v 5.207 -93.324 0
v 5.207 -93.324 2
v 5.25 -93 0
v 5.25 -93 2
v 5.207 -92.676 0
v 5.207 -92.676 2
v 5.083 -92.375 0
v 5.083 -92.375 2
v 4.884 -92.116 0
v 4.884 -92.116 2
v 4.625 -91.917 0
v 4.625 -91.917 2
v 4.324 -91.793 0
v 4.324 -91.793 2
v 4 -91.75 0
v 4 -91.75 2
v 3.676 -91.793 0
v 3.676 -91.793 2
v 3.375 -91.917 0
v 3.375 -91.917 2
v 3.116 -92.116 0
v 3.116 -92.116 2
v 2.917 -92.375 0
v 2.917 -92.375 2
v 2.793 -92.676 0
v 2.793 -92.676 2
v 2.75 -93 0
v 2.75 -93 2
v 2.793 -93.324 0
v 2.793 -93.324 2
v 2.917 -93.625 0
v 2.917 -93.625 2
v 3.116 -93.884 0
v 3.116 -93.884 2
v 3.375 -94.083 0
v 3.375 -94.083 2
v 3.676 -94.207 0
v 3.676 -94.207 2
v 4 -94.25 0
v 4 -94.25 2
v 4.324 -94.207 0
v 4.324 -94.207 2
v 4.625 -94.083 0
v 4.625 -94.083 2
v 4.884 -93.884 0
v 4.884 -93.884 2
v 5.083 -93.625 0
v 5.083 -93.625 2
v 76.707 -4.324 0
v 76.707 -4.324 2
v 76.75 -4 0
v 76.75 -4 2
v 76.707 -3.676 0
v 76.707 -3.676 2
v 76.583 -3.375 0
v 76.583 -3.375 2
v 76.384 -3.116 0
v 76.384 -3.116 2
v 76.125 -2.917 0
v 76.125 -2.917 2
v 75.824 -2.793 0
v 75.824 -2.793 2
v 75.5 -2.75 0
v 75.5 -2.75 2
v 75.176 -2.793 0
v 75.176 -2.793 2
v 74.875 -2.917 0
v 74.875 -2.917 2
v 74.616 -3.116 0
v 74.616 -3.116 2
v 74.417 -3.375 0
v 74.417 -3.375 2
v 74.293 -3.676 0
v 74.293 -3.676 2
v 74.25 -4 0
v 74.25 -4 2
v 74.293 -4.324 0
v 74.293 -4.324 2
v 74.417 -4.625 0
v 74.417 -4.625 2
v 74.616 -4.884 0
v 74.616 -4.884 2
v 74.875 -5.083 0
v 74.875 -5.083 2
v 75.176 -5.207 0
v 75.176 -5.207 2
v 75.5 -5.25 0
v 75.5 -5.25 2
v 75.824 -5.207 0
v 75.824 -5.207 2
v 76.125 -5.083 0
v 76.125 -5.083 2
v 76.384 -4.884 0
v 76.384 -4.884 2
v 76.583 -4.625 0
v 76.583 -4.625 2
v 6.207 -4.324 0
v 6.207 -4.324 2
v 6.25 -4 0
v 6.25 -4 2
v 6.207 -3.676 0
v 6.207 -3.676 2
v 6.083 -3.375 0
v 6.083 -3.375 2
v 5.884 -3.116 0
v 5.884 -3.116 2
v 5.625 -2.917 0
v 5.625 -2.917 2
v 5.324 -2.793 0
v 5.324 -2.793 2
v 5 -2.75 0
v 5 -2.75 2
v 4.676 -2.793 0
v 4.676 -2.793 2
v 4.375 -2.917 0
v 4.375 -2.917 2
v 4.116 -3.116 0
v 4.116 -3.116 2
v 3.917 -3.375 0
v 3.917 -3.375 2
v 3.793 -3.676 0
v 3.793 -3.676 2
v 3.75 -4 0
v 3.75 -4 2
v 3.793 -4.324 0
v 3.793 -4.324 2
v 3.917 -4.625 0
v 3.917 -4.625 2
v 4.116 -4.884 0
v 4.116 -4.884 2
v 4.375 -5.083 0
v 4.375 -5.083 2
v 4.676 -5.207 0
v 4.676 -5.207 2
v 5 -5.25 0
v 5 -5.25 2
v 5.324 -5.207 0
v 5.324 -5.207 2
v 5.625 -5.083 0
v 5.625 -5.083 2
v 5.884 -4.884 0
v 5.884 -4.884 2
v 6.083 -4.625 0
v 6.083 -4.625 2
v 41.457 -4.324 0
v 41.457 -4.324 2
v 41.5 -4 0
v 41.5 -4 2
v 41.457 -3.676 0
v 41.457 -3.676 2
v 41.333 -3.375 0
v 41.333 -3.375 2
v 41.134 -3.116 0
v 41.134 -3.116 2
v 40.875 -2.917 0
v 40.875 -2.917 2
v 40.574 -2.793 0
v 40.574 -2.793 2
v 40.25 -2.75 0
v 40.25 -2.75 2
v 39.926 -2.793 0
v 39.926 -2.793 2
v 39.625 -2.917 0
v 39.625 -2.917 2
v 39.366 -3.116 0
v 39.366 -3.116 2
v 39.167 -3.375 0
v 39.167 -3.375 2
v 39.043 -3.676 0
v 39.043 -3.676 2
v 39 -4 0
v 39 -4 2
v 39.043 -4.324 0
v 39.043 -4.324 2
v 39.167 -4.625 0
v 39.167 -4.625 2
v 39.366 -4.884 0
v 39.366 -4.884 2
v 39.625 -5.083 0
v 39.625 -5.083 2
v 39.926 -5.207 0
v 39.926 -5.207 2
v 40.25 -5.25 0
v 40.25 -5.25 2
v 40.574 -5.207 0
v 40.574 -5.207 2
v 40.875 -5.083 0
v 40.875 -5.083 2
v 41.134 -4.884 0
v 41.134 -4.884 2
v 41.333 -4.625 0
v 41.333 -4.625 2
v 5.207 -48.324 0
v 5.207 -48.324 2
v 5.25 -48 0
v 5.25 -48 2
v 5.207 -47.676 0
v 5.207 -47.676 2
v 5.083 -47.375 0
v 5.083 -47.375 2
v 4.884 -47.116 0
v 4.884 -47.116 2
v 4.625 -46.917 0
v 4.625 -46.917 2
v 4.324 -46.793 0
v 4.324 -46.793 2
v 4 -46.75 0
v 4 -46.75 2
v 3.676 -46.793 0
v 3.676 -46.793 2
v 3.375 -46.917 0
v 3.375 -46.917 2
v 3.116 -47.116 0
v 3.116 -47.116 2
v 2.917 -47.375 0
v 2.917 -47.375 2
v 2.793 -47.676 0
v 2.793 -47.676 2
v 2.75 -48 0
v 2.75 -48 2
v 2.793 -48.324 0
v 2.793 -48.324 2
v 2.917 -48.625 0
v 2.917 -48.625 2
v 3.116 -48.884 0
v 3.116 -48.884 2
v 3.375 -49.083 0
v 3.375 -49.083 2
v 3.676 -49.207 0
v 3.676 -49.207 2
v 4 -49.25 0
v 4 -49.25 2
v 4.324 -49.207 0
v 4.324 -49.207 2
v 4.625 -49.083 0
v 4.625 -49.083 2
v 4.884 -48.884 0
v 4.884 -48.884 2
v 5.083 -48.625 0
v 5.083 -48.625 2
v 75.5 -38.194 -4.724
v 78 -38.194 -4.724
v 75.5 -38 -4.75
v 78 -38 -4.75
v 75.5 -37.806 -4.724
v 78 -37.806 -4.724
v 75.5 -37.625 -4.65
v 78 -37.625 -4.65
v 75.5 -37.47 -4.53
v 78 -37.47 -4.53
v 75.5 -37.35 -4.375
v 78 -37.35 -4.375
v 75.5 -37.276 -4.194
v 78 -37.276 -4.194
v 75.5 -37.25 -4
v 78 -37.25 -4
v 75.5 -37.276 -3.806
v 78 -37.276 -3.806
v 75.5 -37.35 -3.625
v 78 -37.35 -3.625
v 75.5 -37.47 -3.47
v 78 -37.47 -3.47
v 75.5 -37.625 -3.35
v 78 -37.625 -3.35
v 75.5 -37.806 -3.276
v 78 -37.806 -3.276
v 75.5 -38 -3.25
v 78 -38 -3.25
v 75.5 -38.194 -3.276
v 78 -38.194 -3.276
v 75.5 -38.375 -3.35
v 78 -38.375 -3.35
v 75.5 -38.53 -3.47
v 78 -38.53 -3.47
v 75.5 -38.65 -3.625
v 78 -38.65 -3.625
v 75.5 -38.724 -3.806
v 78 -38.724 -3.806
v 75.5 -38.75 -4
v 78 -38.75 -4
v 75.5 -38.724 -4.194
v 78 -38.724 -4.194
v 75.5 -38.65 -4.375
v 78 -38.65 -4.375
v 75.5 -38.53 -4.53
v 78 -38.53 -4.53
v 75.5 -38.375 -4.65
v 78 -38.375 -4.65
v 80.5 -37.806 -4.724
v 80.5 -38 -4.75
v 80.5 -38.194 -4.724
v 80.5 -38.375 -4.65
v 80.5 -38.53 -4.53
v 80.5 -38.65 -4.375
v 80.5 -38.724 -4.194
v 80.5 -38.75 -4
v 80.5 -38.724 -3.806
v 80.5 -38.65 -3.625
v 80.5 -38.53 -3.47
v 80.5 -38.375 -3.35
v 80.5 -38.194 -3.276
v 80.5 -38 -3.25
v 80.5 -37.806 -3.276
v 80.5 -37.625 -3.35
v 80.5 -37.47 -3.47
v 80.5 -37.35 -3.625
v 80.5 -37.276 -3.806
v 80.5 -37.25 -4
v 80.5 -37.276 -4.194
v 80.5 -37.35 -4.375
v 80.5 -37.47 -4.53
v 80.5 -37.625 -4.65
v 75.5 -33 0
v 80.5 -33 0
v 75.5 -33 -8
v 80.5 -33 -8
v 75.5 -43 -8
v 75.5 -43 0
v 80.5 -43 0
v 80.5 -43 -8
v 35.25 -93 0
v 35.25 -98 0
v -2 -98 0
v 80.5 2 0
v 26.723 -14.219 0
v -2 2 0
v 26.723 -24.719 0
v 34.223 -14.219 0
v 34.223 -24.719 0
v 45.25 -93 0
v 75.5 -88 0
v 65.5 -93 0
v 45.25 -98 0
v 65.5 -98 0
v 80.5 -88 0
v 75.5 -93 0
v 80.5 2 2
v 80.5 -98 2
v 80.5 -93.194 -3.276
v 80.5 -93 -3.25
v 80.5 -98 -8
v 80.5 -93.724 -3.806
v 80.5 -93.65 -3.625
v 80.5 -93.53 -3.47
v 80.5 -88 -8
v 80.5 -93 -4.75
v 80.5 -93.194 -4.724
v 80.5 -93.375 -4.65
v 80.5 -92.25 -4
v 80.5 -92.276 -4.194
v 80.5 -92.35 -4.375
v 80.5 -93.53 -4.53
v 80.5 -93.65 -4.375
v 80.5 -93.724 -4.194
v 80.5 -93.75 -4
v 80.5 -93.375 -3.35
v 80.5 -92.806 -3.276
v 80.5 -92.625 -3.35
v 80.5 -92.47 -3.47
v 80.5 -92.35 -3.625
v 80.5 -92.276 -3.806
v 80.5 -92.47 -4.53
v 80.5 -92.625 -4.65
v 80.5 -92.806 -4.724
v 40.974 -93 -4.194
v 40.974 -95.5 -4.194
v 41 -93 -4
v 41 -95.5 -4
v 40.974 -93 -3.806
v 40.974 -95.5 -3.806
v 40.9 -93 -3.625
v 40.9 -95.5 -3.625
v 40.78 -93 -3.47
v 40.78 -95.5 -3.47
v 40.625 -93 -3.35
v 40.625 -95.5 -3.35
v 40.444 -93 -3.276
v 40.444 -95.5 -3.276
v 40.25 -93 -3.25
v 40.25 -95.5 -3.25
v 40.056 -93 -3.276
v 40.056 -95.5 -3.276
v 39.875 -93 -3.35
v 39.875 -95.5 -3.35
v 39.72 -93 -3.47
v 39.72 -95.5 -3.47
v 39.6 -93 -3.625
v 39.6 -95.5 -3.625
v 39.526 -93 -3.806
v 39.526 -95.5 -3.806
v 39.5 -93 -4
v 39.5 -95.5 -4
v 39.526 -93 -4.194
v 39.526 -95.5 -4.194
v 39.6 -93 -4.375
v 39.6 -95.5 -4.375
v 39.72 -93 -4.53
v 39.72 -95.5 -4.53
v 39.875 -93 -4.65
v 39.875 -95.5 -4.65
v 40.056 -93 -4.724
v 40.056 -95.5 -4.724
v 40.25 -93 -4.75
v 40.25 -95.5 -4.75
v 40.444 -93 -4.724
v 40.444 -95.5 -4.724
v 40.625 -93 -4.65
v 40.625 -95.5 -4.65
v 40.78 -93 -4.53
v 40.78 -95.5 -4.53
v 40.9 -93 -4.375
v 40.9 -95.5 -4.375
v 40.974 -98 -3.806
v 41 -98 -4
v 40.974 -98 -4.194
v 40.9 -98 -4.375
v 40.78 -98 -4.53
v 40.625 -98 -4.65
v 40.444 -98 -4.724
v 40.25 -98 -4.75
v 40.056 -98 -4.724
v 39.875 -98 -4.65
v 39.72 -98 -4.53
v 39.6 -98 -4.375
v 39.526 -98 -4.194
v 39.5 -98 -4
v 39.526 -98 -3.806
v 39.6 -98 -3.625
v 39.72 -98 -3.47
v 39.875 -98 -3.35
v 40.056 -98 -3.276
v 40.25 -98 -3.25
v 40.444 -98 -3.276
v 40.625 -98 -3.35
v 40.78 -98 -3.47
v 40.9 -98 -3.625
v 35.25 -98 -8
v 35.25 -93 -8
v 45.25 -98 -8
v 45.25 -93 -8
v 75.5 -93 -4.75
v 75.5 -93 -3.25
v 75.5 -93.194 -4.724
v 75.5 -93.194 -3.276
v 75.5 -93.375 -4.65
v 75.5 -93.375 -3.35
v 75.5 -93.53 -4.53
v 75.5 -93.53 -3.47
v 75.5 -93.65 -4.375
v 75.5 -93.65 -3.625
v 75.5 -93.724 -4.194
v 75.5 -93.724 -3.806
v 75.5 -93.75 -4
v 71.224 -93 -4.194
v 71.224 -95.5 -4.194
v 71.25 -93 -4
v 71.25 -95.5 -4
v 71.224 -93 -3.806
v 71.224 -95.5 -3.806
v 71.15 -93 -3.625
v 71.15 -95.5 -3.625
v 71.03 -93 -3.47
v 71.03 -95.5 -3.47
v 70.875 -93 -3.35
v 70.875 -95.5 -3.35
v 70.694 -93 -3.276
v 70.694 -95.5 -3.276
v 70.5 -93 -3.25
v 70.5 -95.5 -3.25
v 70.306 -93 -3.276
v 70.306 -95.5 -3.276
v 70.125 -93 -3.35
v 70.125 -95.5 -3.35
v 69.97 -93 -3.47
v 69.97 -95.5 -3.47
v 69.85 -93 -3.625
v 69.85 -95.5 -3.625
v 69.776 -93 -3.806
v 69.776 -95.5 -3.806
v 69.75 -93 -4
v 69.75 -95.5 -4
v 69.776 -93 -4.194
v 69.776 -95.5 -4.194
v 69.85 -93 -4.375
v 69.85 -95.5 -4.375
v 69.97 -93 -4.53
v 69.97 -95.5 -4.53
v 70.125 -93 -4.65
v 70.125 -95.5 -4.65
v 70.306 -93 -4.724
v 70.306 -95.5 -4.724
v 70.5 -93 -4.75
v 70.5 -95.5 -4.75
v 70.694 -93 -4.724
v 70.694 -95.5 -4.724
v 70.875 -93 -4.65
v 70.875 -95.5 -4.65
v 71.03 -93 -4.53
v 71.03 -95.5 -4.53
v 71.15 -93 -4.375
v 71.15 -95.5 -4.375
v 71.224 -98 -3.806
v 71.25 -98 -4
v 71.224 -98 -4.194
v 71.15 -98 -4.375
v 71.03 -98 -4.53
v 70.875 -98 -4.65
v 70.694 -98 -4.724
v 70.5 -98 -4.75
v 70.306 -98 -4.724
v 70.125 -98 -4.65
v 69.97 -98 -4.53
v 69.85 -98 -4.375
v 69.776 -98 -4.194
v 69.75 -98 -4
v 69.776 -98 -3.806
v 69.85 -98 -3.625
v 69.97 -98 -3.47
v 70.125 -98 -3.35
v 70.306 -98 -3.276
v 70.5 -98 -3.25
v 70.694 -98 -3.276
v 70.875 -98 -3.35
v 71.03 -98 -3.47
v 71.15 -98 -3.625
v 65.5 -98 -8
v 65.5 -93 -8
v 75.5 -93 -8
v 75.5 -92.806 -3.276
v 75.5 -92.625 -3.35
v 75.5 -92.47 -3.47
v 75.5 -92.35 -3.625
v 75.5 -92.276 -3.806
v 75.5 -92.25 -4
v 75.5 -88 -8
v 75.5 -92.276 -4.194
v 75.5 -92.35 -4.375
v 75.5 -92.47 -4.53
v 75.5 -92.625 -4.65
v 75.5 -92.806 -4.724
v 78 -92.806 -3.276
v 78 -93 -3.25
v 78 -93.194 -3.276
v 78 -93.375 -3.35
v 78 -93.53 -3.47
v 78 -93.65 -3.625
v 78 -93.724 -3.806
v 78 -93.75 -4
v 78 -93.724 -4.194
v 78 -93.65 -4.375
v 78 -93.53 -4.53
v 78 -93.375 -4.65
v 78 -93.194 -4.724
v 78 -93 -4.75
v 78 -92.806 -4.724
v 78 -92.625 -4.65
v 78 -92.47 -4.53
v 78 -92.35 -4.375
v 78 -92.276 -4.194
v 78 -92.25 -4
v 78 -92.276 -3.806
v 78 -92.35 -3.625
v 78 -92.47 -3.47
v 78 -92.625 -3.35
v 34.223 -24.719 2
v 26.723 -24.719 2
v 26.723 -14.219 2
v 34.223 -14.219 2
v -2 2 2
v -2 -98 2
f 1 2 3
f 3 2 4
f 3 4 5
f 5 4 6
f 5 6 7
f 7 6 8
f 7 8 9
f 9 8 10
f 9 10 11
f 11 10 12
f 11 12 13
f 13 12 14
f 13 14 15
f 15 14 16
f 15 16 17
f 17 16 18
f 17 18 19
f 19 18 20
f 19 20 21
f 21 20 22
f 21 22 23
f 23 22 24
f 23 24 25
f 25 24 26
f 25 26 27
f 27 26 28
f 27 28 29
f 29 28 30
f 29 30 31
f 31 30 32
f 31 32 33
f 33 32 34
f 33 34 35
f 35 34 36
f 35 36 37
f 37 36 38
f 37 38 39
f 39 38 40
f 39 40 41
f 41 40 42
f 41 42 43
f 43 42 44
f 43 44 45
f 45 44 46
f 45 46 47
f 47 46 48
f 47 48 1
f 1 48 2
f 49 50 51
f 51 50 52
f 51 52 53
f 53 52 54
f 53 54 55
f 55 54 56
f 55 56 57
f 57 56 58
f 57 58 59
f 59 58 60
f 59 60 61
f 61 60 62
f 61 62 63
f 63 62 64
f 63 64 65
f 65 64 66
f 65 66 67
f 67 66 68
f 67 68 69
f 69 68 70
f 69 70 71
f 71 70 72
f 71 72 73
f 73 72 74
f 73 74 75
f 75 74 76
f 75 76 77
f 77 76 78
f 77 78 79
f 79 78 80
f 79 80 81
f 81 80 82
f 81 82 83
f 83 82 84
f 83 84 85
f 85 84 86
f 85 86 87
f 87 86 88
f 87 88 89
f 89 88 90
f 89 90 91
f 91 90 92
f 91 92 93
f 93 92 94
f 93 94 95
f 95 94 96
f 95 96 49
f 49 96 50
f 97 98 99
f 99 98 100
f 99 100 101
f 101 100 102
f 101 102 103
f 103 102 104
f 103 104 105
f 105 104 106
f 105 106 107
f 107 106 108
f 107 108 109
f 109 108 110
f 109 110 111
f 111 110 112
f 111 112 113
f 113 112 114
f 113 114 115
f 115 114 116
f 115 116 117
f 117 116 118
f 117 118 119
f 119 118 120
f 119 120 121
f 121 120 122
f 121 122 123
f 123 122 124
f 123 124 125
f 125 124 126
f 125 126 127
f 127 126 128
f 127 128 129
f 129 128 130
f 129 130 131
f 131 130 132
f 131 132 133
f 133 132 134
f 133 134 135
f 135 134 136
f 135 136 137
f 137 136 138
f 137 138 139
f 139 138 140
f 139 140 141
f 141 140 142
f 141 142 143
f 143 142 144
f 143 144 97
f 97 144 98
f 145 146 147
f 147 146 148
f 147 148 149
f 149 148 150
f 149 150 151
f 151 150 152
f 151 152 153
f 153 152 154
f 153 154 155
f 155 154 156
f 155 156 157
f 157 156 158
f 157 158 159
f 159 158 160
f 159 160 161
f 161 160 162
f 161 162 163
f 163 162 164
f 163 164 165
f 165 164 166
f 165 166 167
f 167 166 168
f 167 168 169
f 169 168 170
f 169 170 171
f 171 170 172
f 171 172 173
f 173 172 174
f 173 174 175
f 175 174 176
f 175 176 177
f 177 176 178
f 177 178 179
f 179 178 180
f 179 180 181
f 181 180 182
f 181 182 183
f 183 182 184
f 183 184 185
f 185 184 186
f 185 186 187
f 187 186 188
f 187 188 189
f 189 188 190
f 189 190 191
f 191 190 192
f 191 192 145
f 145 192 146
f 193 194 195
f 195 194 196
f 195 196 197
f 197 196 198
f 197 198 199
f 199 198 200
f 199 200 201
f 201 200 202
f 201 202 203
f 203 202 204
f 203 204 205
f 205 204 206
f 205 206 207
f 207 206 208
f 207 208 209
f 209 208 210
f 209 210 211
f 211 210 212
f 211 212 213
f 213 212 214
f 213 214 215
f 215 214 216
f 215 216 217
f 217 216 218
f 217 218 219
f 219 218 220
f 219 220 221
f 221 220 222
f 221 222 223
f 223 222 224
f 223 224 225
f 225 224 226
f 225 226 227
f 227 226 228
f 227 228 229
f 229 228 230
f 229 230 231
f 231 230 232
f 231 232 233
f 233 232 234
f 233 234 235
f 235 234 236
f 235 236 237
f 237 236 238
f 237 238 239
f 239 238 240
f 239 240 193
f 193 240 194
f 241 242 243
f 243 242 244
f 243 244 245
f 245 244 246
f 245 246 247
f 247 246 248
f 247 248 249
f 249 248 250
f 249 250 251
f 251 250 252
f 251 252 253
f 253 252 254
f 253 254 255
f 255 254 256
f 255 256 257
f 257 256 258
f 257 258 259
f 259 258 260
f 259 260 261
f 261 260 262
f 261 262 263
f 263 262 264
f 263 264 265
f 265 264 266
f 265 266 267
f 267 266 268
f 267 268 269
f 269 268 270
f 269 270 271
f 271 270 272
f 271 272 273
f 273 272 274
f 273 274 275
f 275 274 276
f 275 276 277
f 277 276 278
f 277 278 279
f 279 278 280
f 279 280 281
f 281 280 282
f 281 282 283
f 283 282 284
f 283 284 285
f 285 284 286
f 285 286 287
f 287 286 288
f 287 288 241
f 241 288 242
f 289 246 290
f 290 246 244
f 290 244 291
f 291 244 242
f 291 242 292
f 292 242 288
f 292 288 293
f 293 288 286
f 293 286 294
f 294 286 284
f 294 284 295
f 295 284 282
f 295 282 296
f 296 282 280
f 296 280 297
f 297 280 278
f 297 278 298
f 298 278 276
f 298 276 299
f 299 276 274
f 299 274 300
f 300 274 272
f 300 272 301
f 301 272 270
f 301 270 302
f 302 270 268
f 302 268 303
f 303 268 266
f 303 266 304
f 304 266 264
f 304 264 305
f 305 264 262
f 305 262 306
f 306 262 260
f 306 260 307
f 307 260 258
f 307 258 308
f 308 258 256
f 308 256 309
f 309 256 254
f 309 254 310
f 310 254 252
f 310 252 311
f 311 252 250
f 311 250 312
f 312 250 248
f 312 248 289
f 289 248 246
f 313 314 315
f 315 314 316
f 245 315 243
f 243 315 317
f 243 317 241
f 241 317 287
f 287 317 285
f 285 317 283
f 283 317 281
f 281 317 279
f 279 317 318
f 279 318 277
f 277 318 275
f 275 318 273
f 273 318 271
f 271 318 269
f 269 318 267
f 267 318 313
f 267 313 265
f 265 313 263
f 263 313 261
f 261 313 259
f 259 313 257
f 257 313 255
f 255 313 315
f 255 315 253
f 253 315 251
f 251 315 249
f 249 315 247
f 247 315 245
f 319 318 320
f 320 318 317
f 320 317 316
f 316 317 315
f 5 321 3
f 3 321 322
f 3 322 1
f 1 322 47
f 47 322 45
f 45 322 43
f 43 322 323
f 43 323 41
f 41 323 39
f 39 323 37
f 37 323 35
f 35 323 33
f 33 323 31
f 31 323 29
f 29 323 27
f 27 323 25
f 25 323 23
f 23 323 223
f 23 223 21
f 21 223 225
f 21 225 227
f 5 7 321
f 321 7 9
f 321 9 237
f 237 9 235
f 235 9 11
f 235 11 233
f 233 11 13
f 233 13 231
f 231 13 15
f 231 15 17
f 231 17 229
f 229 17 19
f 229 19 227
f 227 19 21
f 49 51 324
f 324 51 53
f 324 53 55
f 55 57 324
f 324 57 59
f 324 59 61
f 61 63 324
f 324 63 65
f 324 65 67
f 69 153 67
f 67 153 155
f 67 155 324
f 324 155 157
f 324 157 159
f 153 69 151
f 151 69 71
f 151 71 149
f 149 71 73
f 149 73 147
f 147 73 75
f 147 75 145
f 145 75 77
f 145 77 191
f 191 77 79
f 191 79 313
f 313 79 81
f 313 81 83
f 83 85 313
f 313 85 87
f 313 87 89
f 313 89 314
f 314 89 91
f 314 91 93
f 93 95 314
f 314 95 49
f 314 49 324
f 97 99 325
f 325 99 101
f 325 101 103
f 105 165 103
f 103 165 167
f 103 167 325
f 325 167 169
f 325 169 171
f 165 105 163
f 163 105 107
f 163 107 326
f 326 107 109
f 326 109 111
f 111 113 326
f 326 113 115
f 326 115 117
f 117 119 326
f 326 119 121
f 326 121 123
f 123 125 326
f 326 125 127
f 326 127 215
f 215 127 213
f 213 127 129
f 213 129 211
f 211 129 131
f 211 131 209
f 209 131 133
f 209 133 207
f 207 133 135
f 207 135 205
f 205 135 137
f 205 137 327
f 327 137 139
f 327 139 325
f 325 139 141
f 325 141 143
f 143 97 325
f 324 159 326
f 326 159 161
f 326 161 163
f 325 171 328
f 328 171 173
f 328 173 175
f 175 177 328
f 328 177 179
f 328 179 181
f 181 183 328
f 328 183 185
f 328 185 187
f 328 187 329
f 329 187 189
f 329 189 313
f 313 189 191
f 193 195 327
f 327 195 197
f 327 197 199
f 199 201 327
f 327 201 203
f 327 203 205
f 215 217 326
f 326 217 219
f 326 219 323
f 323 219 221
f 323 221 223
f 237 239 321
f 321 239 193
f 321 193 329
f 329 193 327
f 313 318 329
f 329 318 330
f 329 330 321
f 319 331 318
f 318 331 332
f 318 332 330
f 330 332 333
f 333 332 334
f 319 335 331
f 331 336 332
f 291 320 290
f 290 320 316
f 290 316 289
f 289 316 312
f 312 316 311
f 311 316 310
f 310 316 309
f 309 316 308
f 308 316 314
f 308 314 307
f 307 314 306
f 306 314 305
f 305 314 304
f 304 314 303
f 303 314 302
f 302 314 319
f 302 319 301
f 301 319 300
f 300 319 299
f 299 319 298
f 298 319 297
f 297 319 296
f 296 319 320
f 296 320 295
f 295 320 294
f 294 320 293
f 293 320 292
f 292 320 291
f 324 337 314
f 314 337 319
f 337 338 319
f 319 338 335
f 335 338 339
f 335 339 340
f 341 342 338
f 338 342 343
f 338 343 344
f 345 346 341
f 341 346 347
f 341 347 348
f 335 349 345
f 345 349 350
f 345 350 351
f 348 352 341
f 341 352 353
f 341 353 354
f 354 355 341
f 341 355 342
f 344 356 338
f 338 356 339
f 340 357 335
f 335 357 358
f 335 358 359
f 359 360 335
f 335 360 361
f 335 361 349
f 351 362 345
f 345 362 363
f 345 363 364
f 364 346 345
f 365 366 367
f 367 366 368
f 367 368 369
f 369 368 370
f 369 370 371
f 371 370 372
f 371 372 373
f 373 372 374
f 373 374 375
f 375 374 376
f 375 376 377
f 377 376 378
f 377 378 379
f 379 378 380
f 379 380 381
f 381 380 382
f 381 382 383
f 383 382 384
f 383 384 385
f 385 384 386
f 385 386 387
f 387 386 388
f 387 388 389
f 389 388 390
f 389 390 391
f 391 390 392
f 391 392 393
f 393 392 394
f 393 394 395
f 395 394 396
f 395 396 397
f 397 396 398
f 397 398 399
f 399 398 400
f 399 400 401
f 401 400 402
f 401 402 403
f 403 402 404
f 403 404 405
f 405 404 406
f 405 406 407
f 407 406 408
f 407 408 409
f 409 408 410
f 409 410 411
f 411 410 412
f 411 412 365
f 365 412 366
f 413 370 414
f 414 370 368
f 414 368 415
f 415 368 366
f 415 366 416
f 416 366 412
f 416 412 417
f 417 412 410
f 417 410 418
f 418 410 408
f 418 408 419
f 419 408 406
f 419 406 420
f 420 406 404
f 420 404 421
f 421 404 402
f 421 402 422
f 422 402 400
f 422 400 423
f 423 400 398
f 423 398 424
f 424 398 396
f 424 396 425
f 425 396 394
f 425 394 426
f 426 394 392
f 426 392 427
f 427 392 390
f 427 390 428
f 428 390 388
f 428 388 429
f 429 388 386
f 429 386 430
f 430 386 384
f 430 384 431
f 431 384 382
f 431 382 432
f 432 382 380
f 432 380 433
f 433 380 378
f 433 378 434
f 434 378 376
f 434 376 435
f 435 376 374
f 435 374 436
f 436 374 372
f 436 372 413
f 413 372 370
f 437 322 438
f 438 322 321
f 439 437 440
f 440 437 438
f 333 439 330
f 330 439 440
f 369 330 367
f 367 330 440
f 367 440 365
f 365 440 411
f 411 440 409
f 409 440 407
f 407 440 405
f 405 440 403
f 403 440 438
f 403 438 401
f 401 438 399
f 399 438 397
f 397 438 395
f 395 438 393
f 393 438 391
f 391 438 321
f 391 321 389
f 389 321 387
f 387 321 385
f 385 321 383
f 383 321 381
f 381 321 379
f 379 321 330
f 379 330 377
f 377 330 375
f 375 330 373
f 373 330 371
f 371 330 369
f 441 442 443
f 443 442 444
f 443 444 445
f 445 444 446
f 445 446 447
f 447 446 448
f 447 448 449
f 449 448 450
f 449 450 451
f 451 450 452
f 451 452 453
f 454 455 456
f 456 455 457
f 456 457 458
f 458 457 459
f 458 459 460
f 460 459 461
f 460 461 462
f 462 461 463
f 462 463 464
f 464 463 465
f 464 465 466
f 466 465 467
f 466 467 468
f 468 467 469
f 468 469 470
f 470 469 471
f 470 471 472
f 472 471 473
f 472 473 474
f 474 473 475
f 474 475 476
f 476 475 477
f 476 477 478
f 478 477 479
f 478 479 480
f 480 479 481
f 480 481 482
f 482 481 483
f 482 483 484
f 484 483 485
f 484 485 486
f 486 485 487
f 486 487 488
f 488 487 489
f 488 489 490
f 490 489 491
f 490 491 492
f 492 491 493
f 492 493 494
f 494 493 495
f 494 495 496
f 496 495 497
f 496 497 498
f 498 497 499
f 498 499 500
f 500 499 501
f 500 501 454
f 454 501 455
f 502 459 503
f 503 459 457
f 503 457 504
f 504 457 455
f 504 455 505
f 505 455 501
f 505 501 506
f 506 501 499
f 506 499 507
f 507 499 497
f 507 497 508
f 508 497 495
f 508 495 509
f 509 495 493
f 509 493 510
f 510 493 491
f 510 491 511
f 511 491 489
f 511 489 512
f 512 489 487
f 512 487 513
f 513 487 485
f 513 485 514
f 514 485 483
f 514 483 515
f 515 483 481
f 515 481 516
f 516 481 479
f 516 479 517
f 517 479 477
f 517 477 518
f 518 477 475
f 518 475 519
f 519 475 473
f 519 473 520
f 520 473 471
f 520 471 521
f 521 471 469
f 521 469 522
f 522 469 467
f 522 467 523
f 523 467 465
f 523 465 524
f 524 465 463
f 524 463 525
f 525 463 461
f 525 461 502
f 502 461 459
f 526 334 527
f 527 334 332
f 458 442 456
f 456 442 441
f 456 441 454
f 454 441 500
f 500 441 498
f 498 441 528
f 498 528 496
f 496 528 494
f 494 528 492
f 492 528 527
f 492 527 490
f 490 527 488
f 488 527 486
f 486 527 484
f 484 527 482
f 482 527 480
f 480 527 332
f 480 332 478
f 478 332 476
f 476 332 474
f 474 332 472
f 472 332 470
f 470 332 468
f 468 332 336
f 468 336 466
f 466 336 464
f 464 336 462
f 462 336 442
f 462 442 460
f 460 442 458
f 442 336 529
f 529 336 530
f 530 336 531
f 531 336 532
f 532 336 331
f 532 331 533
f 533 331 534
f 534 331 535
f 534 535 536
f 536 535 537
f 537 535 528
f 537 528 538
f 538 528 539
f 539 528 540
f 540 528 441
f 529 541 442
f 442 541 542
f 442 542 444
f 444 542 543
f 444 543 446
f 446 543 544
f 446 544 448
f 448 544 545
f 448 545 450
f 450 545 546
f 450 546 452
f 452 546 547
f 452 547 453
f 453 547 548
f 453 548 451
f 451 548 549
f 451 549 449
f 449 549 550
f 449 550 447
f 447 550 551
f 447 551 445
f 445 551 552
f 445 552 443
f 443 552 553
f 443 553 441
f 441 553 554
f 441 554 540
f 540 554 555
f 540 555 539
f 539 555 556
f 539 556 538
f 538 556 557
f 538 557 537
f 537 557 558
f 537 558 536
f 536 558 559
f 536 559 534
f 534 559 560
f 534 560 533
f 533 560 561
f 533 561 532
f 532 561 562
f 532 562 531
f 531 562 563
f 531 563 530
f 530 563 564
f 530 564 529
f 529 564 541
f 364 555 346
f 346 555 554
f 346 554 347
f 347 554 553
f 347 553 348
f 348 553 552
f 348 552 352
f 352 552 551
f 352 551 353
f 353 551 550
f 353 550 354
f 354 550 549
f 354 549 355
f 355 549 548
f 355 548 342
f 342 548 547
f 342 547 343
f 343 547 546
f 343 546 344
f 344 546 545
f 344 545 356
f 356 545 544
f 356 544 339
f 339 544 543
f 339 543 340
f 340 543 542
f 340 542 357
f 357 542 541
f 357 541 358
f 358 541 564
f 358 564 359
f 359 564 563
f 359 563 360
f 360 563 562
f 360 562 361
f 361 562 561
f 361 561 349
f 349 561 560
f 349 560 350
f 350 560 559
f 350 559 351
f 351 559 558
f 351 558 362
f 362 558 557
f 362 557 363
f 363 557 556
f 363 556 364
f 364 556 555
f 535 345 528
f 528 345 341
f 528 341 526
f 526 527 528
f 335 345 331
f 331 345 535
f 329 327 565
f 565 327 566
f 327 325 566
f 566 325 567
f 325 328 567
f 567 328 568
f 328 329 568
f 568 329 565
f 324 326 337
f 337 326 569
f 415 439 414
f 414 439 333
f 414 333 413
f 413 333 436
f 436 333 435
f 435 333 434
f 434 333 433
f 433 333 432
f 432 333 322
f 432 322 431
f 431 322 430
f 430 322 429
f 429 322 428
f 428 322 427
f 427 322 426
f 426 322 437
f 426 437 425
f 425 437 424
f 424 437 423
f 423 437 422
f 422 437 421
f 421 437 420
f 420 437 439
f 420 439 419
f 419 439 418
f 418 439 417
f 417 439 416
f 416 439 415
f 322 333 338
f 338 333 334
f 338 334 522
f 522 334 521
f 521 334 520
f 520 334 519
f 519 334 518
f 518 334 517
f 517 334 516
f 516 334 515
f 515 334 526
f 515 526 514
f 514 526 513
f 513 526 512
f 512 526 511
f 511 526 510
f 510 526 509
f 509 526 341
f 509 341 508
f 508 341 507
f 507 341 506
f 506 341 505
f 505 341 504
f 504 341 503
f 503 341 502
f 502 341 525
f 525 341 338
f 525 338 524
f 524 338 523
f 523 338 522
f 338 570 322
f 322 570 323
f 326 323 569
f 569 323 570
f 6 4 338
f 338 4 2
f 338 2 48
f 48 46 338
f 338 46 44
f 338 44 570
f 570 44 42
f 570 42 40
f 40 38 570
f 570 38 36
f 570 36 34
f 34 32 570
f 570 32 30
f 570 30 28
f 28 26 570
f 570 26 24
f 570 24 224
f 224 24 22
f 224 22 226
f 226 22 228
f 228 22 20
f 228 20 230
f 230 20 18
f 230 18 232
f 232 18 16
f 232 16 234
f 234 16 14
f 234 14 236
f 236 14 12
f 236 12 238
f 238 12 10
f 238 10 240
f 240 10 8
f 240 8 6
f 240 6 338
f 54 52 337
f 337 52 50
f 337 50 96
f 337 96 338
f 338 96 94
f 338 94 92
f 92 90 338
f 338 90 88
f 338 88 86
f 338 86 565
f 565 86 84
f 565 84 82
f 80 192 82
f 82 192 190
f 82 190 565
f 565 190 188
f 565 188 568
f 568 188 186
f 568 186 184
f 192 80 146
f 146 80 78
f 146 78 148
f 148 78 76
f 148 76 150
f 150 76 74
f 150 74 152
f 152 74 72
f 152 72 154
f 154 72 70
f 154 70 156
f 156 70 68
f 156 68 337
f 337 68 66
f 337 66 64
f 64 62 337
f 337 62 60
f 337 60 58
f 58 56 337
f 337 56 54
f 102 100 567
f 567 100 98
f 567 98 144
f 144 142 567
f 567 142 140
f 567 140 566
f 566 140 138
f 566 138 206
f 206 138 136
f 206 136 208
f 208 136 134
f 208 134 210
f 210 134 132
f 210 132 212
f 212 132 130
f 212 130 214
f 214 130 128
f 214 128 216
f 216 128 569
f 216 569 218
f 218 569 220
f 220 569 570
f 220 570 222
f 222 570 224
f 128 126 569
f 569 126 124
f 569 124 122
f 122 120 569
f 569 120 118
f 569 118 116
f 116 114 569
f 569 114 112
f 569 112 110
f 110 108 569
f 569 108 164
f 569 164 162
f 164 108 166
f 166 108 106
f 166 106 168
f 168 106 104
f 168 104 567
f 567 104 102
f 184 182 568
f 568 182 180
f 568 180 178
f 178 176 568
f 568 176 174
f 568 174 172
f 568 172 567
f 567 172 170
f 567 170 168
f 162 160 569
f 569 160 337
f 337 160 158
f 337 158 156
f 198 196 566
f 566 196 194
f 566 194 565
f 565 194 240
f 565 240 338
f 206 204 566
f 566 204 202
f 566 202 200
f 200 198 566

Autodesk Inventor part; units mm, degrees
ref_plane "YZ Plane" through (0, 0, 0) normal (1, 0, 0) x (0, 1, 0)
ref_plane "XZ Plane" through (0, 0, 0) normal (0, 1, 0) x (-1, 0, 0)
ref_plane "XY Plane" through (0, 0, 0) normal (0, 0, 1) x (1, 0, 0)
ref_plane "Work Plane1" through (0, 0, 0) normal (0, 0, 1) x (1, 0, 0)
sketch "Sketch1" plane through (0, 0, 0) normal (0, 0, 1) x (1, 0, 0)
  line L0 (-2, -98) -> (8, -98) projected
  line L1 (-2, -98) -> (-2, 2) projected
  circle A0 centre (4, -93) radius 0.75 projected
  circle A1 centre (4, -48) radius 0.75 projected
  circle A2 centre (5, -4) radius 0.75 projected
  line L2 (0, 2) -> (80.5, 2) projected
  circle A3 centre (40.25, -4) radius 0.75 projected
  circle A4 centre (75.5, -4) radius 0.75 projected
  line L3 (34.223, -24.7194) -> (34.223, -14.2194)
  line L4 (26.723, -24.7194) -> (34.223, -24.7194)
  line L5 (26.723, -14.2194) -> (26.723, -24.7194)
  line L6 (34.223, -14.2194) -> (26.723, -14.2194)
  line L7 (80.5, 2) -> (-2, 2)
  line L8 (-2, 2) -> (-2, -98)
  line L9 (-2, -98) -> (80.5, -98)
  line L10 (80.5, -98) -> (80.5, 2)
  point P0 (0, 0)
  point P1 (20.6901, -14.1894)
extrude "Extrusion1" add sketch "Sketch1" along normal blind 2
sketch "Sketch2" plane through (0, 0, 0) normal (0, 0, -1) x (-1, 0, 0)
  point P0 (0, 0)
sketch "Sketch3" plane through (0, 0, 0) normal (0, 0, -1) x (-1, 0, 0)
  point P0 (0, 0)
sketch "Sketch4" plane through (80.5, -98, 0) normal (1, 0, 0) x (0, 0, -1)
  line L0 (0, 45) -> (0, 55) projected
  line L1 (0, 45) -> (5, 45) projected
  line L2 (5, 55) -> (5, 45) projected
  line L3 (0, 55) -> (5, 55) projected
  line L4 (0, 45) -> (8, 45)
  line L5 (8, 45) -> (8, 55)
  line L6 (8, 55) -> (0, 55)
  circle A0 centre (4, 50) radius 0.75
  point P0 (0, 98)
  dimension "d3" = 8
  dimension "d4" = 10
  dimension "d6" = 1.5
extrude "Extrusion2" add sketch "Sketch4" against normal blind 5
sketch "Sketch5" plane through (80.5, -98, 2) normal (1, 0, 0) x (0, 0, -1)
  line L0 (2, 45) -> (2, 0) projected
  line L1 (2, 0) -> (10, 0)
  line L2 (10, 0) -> (10, 10)
  line L3 (10, 10) -> (2, 10)
  line L4 (2, 10) -> (2, 0)
  circle A0 centre (6, 5) radius 0.75
  point P0 (2, 98)
  dimension "d9" = 8
  dimension "d10" = 10
  dimension "d12" = 1.5
extrude "Extrusion3" add sketch "Sketch5" against normal blind 5
sketch "Sketch6" plane through (-2, -98, 2) normal (0, -1, 0) x (1, 0, 0)
  line L0 (77.5, -10) -> (77.5, -2) projected
  line L1 (77.5, -10) -> (67.5, -10)
  line L2 (67.5, -10) -> (67.5, -2)
  line L3 (67.5, -2) -> (77.5, -2)
  line L4 (77.5, -2) -> (77.5, -10)
  circle A0 centre (72.5, -6) radius 0.75
  point P0 (2, -2)
  dimension "d15" = 10
  dimension "d16" = 8
  dimension "d18" = 1.5
extrude "Extrusion4" add sketch "Sketch6" against normal blind 5
sketch "Sketch7" plane through (-2, -98, 2) normal (0, -1, 0) x (1, 0, 0)
  line L0 (10, -2) -> (10, -17) projected
  line L1 (67.5, -10) -> (67.5, -2) projected
  circle A0 centre (32.473, -6) radius 0.75
  line L2 (32.473, -10) -> (27.473, -10)
  line L3 (27.473, -10) -> (27.473, -2)
  line L4 (27.473, -2) -> (37.473, -2)
  line L5 (37.473, -2) -> (37.473, -10)
  line L6 (37.473, -10) -> (32.473, -10)
  point P0 (2, -2)
  dimension "d22" = 1.5
  dimension "d25" = 4
  dimension "d26" = 5
  dimension "d27" = 8
  dimension "d28" = 10
  dimension "d29" = 8
extrude "Extrusion5" add sketch "Sketch7" against normal blind 5
sketch "Sketch8" plane through (-2, -98, 2) normal (0, -1, 0) x (1, 0, 0)
  line L0 (37.473, -10) -> (27.473, -10) projected
  line L1 (27.473, -10) -> (37.473, -10)
  line L2 (37.473, -10) -> (37.473, -2)
  line L3 (37.473, -2) -> (27.473, -2)
  line L4 (27.473, -2) -> (27.473, -10)
  point P0 (2, -2)
extrude "Extrusion6" cut sketch "Sketch8" against normal blind 5
sketch "Sketch9" plane through (-2, -98, 2) normal (0, -1, 0) x (1, 0, 0)
  line L0 (47.25, -2) -> (47.25, -7) projected
  line L1 (47.25, -7) -> (37.25, -7) projected
  line L2 (37.25, -7) -> (37.25, -2) projected
  line L3 (37.25, -2) -> (47.25, -2)
  line L4 (67.5, -2) -> (0, -2) projected
  line L5 (37.25, -2) -> (37.25, -10)
  line L6 (37.25, -10) -> (47.25, -10)
  line L7 (47.25, -10) -> (47.25, -2)
  line L8 (47.25, -2) -> (37.25, -2)
  circle A0 centre (42.25, -6) radius 0.75
  point P0 (2, -2)
  dimension "d35" = 8
  dimension "d36" = 10
  dimension "d38" = 1.5
extrude "Extrusion7" add sketch "Sketch9" against normal blind 5
sketch "Sketch10" plane through (80.5, -53, -8) normal (0, 0, -1) x (-1, 0, 0)
  line L0 (5, 10) -> (5, 0) projected
  line L1 (0, -45) -> (0, 55) projected
  line L2 (5, 0) -> (0, 0)
  line L3 (0, 0) -> (0, 10)
  line L4 (0, 10) -> (5, 10)
  line L5 (5, 10) -> (5, 0)
  point P0 (80.5, 53)
  dimension "d41" = 10
extrude "Extrusion8" cut sketch "Sketch10" against normal blind 8
sketch "Sketch11" plane through (0, 0, 0) normal (0, 0, -1) x (-1, 0, 0)
  circle A0 centre (-4, -48) radius 0.75 projected
  line L0 (-80.5, 2) -> (-80.5, -88) projected
  line L1 (-80.5, -48) -> (-80.5, -43)
  line L2 (-80.5, -43) -> (-80.5, -33)
  line L3 (-80.5, -33) -> (-75.5, -33)
  line L4 (-75.5, -33) -> (-75.5, -43)
  line L5 (-75.5, -43) -> (-80.5, -43)
  point P0 (0, 0)
  dimension "d44" = 5
  dimension "d45" = 10
  dimension "d46" = 5
  dimension "d47" = 10
extrude "Extrusion9" add sketch "Sketch11" along normal blind 8 contours L3 L4 L5 L0
sketch "Sketch12" plane through (80.5, -98, 2) normal (1, 0, 0) x (0, 0, -1)
  line L0 (10, 65) -> (10, 55) projected
  circle A0 centre (6, 60) radius 0.75
  point P0 (2, 98)
  dimension "d51" = 1.5
extrude "Extrusion10" cut sketch "Sketch12" against normal blind 5
sketch "Sketch13" plane through (0, 0, 2) normal (0, 0, 1) x (1, 0, 0)
  circle A0 centre (5, -4) radius 0.75 projected
  circle A1 centre (5, -4) radius 1.25
  circle A2 centre (40.25, -4) radius 0.75 projected
  circle A3 centre (40.25, -4) radius 1.25
  circle A4 centre (75.5, -4) radius 0.75 projected
  circle A5 centre (75.5, -4) radius 1.25
  circle A6 centre (4, -48) radius 0.75 projected
  circle A7 centre (4, -48) radius 1.25
  circle A8 centre (4, -93) radius 0.75 projected
  circle A9 centre (4, -93) radius 1.25
  point P0 (0, 0)
  dimension "d54" = 2.5
  dimension "d55" = 2.5
  dimension "d56" = 2.5
  dimension "d57" = 2.5
  dimension "d58" = 2.5
extrude "Extrusion11" cut sketch "Sketch13" against normal blind 2
properties part number "Lateral Derecho" material "Nylon 6/6"
